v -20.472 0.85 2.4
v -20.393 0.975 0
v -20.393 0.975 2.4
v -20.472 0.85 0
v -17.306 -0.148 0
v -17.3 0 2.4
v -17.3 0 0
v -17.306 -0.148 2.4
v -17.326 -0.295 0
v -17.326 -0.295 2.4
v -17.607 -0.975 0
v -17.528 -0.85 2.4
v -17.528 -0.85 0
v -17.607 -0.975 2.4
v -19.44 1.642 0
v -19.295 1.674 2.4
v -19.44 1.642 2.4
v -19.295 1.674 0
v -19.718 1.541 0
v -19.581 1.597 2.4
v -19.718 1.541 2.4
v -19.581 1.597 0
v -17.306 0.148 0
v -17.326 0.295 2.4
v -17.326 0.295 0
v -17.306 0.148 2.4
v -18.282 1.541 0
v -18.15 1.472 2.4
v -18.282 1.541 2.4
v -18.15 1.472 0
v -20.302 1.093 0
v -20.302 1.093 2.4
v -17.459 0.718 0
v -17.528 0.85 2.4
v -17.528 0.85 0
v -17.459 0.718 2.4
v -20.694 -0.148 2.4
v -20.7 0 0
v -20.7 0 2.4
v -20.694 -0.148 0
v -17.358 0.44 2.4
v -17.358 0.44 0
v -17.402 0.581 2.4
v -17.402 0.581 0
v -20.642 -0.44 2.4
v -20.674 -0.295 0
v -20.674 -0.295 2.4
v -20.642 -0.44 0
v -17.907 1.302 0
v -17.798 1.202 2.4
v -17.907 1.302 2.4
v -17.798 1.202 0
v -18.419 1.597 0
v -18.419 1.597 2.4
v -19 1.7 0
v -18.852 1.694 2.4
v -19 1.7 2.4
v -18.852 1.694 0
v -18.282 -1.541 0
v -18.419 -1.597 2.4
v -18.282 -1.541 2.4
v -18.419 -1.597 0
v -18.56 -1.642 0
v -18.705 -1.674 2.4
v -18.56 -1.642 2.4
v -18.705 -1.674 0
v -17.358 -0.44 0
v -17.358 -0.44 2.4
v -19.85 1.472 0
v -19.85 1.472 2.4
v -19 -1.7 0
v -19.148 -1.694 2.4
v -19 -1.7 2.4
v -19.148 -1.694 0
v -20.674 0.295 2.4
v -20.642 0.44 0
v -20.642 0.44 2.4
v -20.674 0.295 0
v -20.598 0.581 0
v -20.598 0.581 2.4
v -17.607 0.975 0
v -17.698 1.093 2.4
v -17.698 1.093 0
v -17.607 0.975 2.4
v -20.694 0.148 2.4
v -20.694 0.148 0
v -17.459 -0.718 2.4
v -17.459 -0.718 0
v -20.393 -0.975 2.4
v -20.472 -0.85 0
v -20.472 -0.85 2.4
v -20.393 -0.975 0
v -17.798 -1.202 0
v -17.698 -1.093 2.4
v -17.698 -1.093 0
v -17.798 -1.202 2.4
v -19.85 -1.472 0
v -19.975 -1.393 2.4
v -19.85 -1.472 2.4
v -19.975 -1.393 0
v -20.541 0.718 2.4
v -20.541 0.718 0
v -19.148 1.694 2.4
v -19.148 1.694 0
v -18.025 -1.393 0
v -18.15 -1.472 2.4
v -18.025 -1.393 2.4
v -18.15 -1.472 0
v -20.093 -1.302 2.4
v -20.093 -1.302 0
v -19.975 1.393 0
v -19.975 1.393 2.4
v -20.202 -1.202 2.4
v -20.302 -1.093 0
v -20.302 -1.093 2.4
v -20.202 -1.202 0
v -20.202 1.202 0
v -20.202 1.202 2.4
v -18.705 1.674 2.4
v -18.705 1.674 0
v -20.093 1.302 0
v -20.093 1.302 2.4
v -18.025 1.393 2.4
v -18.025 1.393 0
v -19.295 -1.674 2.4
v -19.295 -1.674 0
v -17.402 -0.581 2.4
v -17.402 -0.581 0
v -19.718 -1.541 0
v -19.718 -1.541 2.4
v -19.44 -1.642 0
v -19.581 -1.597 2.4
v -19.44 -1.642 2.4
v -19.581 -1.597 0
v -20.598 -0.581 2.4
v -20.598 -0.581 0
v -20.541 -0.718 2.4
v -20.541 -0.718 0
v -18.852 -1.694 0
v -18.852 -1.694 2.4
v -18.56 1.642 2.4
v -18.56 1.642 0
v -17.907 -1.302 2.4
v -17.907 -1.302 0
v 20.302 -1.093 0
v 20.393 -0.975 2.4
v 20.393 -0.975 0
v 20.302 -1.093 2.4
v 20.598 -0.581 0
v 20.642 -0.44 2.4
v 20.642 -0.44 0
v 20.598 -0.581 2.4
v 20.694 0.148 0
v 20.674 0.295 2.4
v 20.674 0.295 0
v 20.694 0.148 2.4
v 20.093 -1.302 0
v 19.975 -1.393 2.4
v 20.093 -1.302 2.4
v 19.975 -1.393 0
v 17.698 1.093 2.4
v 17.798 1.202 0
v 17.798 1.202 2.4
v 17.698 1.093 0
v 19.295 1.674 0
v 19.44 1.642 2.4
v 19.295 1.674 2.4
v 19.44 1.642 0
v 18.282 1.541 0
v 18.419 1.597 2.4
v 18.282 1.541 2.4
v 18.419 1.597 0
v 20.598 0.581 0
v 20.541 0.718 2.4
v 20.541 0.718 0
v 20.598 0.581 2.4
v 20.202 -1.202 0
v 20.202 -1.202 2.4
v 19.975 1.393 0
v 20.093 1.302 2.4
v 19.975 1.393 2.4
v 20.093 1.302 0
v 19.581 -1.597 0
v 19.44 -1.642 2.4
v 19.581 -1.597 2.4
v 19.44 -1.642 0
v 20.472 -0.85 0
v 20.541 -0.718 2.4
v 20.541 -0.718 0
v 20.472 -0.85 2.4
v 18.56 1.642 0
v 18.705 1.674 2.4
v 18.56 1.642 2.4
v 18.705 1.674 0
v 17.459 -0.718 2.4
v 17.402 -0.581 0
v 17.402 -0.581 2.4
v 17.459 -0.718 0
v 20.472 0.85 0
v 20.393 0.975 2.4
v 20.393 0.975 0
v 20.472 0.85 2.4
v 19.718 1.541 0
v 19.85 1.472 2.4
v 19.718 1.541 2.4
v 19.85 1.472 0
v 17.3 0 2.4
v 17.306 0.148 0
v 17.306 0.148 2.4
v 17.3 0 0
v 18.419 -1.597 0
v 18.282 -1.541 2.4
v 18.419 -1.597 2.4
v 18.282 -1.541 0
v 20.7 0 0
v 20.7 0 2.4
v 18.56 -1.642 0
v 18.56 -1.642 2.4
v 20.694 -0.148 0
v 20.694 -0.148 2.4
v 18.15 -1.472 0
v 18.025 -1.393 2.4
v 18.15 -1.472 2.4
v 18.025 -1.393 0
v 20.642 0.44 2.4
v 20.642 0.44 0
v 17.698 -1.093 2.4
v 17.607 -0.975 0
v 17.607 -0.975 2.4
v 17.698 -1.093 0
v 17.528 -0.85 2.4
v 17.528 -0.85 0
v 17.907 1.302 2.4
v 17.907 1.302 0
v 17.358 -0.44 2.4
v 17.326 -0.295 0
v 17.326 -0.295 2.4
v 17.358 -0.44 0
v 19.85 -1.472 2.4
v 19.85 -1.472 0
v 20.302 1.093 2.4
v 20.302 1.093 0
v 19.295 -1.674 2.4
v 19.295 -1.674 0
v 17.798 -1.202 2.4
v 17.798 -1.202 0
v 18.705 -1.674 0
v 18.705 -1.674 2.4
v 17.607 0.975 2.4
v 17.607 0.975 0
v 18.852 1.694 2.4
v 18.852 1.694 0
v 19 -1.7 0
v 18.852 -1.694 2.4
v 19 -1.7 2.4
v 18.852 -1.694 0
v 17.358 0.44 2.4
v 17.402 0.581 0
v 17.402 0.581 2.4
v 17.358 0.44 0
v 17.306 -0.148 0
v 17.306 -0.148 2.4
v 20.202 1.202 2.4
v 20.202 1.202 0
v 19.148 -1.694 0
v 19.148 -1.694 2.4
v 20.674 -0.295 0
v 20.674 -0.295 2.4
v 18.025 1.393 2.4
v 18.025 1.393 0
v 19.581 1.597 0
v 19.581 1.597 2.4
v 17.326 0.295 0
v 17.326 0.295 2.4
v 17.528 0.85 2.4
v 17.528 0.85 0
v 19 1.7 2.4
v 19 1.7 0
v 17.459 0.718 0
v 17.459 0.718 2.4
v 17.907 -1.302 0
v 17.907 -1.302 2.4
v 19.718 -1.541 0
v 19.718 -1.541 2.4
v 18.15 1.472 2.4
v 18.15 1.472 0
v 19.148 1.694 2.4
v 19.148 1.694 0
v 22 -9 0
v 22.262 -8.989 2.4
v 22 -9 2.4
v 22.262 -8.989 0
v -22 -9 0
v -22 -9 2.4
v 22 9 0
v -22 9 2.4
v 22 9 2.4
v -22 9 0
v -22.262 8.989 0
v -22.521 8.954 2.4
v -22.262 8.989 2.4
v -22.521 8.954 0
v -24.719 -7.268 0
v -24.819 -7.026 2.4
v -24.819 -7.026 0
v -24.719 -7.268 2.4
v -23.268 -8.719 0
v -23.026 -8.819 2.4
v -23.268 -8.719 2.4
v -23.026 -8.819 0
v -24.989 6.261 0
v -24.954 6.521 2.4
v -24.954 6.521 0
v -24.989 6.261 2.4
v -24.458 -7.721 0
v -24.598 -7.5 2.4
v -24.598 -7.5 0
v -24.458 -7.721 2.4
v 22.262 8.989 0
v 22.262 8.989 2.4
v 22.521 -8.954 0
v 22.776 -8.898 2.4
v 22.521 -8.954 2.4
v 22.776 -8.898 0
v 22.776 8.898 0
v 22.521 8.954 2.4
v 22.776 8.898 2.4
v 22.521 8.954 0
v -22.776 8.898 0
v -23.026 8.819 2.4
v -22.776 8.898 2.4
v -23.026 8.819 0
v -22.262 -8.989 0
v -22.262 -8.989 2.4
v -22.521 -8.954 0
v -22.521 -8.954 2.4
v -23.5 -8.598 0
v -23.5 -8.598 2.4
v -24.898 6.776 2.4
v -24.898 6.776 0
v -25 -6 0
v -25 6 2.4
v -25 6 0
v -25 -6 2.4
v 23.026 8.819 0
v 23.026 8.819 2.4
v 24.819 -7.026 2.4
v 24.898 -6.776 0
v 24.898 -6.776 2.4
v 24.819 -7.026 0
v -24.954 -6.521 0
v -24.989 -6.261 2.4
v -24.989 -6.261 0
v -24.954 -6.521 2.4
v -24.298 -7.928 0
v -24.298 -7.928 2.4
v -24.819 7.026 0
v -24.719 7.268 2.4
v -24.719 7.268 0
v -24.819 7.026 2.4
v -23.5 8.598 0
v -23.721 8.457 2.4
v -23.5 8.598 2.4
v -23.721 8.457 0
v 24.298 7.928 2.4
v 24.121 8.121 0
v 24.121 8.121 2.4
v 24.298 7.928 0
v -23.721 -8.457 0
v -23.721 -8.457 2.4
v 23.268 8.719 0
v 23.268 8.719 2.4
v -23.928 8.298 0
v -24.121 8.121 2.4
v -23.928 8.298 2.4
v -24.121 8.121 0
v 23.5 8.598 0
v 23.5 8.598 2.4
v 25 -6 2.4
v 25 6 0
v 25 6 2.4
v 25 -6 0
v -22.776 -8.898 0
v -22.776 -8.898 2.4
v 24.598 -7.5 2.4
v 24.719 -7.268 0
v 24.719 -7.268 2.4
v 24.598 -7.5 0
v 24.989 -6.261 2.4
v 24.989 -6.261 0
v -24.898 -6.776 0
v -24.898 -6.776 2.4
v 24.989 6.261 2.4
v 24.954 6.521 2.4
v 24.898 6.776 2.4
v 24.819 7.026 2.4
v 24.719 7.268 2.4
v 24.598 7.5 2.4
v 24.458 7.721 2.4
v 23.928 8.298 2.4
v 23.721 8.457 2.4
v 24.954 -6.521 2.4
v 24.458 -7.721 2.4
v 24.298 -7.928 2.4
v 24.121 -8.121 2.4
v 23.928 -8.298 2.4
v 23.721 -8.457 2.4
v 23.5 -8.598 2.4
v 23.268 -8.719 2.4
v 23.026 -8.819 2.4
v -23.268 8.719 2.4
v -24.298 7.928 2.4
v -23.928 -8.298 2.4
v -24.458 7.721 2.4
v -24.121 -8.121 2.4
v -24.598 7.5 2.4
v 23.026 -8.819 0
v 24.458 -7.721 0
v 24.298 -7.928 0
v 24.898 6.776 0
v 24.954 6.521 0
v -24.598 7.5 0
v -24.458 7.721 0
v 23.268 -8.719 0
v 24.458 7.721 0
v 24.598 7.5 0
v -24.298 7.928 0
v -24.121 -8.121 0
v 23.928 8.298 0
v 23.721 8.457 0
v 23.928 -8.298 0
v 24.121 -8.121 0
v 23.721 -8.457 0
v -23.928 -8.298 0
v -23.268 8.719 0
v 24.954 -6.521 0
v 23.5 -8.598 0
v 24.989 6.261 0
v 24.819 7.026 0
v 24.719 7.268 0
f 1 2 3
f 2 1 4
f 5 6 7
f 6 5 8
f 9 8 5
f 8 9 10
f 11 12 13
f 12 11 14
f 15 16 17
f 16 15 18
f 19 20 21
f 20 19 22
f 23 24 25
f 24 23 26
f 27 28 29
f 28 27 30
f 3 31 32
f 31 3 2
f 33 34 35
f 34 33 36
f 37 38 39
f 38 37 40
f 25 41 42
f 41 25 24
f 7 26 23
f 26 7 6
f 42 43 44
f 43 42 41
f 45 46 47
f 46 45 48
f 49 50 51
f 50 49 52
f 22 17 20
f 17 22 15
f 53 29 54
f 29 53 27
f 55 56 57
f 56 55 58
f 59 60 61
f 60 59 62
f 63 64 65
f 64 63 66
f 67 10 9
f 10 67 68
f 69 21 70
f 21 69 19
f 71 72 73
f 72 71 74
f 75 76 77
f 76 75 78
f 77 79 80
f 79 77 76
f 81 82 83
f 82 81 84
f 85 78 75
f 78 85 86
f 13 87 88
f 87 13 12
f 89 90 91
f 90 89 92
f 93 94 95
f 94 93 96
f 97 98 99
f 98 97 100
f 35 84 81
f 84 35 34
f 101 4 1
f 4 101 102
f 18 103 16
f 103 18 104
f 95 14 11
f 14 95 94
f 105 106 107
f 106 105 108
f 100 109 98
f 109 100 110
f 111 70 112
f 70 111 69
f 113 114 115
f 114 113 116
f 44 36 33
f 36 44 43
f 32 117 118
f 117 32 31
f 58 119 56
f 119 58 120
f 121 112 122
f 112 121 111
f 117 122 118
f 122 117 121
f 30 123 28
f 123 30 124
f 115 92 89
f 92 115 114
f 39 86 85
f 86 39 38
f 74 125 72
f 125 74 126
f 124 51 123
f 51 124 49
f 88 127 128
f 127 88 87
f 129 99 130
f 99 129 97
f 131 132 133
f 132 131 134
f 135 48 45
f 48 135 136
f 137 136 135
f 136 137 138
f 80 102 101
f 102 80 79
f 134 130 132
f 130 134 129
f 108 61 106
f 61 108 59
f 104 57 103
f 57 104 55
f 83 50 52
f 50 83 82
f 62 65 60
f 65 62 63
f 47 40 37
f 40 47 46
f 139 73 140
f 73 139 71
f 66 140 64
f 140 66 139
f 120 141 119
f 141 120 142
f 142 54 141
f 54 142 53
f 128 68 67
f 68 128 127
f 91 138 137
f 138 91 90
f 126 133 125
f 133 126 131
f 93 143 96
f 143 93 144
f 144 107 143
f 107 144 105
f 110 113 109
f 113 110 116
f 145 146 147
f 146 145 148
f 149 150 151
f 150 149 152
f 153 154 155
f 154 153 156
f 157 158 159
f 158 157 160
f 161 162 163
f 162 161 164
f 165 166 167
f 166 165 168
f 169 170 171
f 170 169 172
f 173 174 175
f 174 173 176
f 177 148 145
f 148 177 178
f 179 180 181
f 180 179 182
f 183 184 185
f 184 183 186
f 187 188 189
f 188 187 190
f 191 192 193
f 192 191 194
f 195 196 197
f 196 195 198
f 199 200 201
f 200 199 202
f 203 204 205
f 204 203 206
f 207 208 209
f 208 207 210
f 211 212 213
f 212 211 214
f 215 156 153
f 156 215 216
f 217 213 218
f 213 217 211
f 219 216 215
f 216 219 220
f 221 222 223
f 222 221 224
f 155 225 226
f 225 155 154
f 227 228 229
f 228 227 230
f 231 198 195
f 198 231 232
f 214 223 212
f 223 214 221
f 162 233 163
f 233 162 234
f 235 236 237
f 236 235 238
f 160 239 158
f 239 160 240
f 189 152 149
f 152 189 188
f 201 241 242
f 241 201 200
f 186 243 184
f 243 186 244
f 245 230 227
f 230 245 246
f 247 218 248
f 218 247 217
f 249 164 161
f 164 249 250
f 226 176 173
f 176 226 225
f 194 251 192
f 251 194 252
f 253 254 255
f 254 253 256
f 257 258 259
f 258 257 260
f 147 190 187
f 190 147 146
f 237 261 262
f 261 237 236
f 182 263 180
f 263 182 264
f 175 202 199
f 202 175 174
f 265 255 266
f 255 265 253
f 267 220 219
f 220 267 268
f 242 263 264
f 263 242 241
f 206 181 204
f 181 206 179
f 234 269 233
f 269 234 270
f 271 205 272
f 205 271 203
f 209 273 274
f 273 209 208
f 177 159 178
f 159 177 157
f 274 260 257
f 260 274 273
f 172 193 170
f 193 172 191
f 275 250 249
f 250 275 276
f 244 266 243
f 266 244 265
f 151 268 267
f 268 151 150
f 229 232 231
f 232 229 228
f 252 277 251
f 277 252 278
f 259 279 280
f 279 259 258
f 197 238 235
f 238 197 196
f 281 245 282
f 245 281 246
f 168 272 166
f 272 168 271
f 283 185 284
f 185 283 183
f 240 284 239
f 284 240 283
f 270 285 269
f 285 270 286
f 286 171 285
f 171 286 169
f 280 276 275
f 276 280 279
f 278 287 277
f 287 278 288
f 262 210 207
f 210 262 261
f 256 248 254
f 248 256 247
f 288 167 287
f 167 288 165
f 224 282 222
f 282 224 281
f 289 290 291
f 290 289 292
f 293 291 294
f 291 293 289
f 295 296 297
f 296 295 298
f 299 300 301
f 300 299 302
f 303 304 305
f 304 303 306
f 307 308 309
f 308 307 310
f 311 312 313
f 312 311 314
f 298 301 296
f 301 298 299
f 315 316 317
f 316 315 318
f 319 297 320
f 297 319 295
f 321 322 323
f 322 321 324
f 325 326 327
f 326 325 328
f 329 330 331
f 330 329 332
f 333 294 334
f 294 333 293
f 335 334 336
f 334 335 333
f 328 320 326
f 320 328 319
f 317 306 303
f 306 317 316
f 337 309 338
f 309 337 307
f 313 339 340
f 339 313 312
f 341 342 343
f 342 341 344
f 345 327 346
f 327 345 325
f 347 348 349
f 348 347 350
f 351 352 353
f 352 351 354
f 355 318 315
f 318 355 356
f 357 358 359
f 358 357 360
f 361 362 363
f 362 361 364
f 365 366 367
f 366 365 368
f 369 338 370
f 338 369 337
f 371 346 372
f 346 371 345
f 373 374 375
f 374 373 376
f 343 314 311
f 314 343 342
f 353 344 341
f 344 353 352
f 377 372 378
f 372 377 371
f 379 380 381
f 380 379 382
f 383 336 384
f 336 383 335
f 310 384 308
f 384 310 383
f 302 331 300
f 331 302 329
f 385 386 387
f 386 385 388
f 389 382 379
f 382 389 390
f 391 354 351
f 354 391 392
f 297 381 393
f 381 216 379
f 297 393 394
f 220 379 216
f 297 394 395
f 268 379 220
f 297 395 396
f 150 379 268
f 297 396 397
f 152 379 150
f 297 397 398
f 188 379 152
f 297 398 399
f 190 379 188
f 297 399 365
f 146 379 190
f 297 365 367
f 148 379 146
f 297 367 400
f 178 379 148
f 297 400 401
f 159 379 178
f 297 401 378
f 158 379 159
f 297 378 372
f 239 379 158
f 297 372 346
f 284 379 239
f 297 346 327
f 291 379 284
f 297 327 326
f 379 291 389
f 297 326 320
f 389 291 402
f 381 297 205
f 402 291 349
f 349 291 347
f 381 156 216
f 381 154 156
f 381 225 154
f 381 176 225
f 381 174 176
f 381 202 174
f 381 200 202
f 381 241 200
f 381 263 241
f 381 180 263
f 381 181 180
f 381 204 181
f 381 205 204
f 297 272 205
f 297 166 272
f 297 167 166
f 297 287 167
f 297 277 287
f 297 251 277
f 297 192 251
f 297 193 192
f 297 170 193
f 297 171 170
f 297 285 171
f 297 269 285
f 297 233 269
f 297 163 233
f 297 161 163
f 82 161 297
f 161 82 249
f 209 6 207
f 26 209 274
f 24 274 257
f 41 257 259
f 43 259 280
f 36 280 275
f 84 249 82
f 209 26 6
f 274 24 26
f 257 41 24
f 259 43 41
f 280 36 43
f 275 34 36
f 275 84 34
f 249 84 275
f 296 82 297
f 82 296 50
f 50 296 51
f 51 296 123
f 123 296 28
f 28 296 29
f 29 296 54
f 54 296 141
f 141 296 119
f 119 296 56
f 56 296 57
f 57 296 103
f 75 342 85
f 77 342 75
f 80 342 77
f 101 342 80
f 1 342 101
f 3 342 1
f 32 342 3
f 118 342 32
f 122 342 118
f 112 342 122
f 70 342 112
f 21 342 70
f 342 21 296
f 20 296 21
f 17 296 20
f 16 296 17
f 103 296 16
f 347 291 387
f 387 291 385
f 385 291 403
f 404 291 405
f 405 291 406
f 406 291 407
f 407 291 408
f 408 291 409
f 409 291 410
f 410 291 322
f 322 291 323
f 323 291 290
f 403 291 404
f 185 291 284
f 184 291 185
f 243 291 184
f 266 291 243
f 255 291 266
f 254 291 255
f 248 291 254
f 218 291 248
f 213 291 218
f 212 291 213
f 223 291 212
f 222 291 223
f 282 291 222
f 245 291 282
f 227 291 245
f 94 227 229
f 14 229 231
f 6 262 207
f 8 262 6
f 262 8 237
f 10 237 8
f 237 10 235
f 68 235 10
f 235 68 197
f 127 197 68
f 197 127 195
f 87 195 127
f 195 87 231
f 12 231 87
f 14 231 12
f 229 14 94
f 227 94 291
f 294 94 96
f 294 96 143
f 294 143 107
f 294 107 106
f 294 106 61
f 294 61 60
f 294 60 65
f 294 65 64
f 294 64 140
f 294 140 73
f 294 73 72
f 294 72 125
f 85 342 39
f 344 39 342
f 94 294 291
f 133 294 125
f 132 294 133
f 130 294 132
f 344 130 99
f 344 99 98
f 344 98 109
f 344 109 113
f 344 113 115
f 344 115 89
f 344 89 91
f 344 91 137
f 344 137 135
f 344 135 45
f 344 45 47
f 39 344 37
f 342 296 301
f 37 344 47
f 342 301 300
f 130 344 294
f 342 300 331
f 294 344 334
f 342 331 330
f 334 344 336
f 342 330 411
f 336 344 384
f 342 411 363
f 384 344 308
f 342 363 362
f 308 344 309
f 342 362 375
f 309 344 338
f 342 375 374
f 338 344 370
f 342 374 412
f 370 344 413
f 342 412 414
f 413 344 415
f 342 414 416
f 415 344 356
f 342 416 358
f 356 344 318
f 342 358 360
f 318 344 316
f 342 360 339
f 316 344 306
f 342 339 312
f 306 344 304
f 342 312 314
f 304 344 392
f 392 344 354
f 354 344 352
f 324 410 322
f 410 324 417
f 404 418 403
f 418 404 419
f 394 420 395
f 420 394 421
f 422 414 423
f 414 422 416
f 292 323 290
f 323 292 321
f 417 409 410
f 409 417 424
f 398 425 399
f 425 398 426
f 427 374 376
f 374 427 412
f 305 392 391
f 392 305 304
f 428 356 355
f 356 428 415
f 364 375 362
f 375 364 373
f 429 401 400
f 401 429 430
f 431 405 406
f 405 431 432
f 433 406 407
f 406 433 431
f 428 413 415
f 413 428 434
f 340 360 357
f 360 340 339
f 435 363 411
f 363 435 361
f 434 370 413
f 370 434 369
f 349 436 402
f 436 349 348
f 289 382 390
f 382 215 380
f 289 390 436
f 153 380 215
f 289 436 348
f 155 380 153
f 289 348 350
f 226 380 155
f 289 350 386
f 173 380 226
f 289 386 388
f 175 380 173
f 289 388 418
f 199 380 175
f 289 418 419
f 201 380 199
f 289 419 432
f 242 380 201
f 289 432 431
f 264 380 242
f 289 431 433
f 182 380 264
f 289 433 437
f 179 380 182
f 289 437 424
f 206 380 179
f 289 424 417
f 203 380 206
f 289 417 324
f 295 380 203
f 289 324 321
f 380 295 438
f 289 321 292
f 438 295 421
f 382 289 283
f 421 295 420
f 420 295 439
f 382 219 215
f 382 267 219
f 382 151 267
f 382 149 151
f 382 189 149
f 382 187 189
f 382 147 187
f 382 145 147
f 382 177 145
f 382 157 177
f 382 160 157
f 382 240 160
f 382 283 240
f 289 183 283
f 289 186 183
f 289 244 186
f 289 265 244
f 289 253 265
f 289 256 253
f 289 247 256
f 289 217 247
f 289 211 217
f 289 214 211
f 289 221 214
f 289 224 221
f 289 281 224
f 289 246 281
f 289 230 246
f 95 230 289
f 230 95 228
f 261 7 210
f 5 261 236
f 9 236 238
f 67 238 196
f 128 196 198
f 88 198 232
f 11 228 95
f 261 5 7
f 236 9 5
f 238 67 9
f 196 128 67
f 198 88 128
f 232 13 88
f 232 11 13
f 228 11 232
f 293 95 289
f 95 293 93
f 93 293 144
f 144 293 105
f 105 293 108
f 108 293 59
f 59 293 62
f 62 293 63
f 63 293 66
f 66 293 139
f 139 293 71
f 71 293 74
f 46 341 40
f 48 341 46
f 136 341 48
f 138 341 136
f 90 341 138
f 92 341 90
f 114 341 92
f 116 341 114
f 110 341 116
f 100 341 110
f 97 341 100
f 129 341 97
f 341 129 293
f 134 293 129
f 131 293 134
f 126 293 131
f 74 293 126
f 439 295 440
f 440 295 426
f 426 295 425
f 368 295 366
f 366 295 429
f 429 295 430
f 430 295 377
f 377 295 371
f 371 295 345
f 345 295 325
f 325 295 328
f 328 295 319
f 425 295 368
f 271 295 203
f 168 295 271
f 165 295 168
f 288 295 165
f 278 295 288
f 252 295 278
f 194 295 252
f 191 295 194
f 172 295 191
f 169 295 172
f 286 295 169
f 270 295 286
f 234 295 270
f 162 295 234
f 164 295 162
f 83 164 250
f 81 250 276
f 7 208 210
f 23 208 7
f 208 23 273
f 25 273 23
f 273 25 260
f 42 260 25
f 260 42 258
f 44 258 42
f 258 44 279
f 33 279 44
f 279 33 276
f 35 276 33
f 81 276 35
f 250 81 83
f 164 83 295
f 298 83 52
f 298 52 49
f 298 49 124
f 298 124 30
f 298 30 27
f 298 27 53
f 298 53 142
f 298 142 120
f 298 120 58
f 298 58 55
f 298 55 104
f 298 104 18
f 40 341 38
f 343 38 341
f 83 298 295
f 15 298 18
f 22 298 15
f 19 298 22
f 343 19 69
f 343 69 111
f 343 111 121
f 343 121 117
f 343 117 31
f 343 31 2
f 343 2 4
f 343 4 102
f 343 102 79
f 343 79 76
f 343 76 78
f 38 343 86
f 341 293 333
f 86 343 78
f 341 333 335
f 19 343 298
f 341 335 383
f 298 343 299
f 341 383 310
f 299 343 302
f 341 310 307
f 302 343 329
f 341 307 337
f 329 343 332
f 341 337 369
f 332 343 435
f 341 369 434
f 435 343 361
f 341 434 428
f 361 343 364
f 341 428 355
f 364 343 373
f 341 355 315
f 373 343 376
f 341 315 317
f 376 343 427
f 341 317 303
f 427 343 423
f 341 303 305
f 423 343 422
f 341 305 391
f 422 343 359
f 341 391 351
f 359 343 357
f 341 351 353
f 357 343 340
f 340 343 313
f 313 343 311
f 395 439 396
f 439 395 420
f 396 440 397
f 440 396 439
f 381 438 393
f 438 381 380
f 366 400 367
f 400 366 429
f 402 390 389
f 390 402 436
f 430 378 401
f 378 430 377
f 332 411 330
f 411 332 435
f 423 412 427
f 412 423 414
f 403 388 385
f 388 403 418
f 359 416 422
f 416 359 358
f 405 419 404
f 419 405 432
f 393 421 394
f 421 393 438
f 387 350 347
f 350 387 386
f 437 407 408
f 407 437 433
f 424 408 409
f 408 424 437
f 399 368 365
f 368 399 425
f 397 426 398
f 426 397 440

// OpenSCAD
// file: woli_config.scad
// ============================================================
// WOLI V1.1 AUDITED FINAL — MASTER PARAMETERS
// Units: mm
// ============================================================

$fn = 72;

// ---------- GLOBAL ----------
fit_clearance = 0.40;
wall = 3.0;
floor_t = 5.0;
cover_t = 2.8;
shell_r = 10.0;

m3_clear = 3.4;
m3_pilot_d = 2.8;
m3_pilot_depth = 4.2;

tie_slot_w = 3.8;
tie_slot_l = 18;

// ---------- BODY ----------
body_w = 170;
body_l = 90;
chassis_h = 31;
top_h = 34;

top_upper_w = 162;
top_upper_l = 80;
top_upper_r = 9;

// ---------- N20 DRIVE ----------
wheel_d = 43;
wheel_w = 17.5;

n20_x = 12;
n20_y = 33;
n20_z = 10;

n20_bracket_x = 25;
n20_bracket_y = 8.5;
n20_bracket_z = 11.5;
n20_bracket_hole_cc = 17;      // approx; slots absorb error

wheel_axis_ground_z = wheel_d/2; // reference only; actual chassis ground plane requires hardware check
wheel_opening_l = 25;            // side wheel cutout depth (Y), mm
motor_y = -body_l/2 + body_l/3;  // wheel center: 1/3 body depth in from front (-Y)
motor_slot_len = 8;
motor_bracket_zone_x = body_w/2 - 18;

// ---------- BALL CASTER ----------
caster_w = 22;
caster_l = 17;
caster_h = 15;
caster_ball_d_visual_ref = 11.5; // photo-only reference; not used for fit
caster_dock_y = body_l/2 - 21;

caster_body_clear = 0.7;
caster_retainer_t = 3.0;
caster_retainer_screw_cc = 27;

caster_mount_x = 15;
caster_mount_y = 12;
caster_floor_open = 18.5;

// ---------- MAIN PCB ----------
pcb_w = 50;
pcb_l = 70;
pcb_stack_h = 15;

pcb_tray_w = 56;
pcb_tray_l = 76;
pcb_mount_cc_x = 44;
pcb_mount_cc_y = 64;

// ---------- MG90S ----------
servo_a = 32.4;
servo_b = 32.5;
servo_c = 12;
servo_fit = 0.7;

// ---------- LIMIT SWITCH ----------
limit_w = 21;
limit_l = 23;
limit_h = 6;

// ---------- VL53L0X ----------
tof_w = 10.7;
tof_l = 25;
tof_h = 11.5;
tof_rail_clear = 0.7;

tof_bezel_w = 34;
tof_bezel_h = 19;

// ---------- PHONE HOLDER / NECK ----------
phone_ball_d = 18.0;            // physical socket fit still required
neck_h = 30;
neck_base_w = 54;
neck_base_l = 42;
neck_base_h = 5;
neck_hole_x = 38;
neck_hole_y = 26;

neck_recess_w = 62;
neck_recess_l = 50;
neck_recess_d = 1.2;

neck_pilot_d = 2.8;
neck_pilot_depth = 7.0;

// reference phone clearance envelope only
phone_ref_w = 165;
phone_ref_h = 82;
phone_ref_t = 12;

// ---------- KLIFE PD-Q2 BATTERY ----------
battery_w = 68;
battery_l = 143;
battery_h = 11;
battery_mass_g = 205;

battery_fit_clear = 0.8;
battery_tray_w = 84;
battery_tray_l = 146;
battery_tray_t = 2.4;
battery_rail_t = 2.5;
battery_rail_h = 5.5;
battery_center_y = -18;

battery_tray_mount_x = 39;
battery_tray_mount_y = 55;

// ---------- UPPER ELECTRONICS DECK ----------
bridge_w = 122;
bridge_l = 94;
bridge_t = 3.0;
bridge_leg_h = 20;
bridge_leg_x = 56;
bridge_leg_y = 36;

module_boss_h = 4.5;
module_boss_d = 8.0;
module_pilot_d = 2.8;

pcb_deck_cx = -25;
pcb_deck_cy = 0;

tb_deck_cx = 34;
tb_deck_cy = 17;

usbc_deck_cx = 36;
usbc_deck_cy = -24;

// ---------- TB6612FNG HW-166 ----------
tb6612_w = 26;
tb6612_l = 26;
tb6612_clear = 0.6;

// total installed height is intentionally not hard-coded

// ---------- USB-C BREAKOUT ----------
usbc_board_w = 12;
usbc_board_l = 15;
usbc_connector_h = 4.2;
usbc_clear = 0.6;

// ---------- TOP COVER INTERFACE ----------
cover_skirt_depth = 4.0;
cover_skirt_clear = 0.8;
cover_skirt_t = 2.5;

cover_side_screw_y = 55 * body_l / 190;
cover_side_screw_z = -2.5;

rear_service_w = 42;
rear_service_h = 14;
rear_hatch_screw_x = 19;
rear_hatch_center_z = 10;

// ---------- CABLE MANAGEMENT ----------
cable_bridge_w = 24;
cable_bridge_l = 14;
cable_bridge_h = 8;
cable_bridge_channel = 8;

// ---------- SERVO LOCK FRAMEWORK ----------
lock_angle_deg = 90;
unlock_angle_deg = 10;

lock_plate_d = 28;
lock_arm_w = 10;
lock_arm_t = 4.0;
lock_reach = 22;
lock_tip_d = 10;

horn_center_clear_d = 7.0;
horn_slot_d = 2.4;              // physical stock-horn check required
horn_slot_len = 8.0;
horn_slot_radius = 8.0;

lock_pad_t = 2.0;
lock_pad_d = 11.0;
// file: woli_lib.scad
include <woli_config.scad>;

module rr2d(w,l,r){
    offset(r=r) square([w-2*r,l-2*r], center=true);
}

module rplate(w,l,h,r){
    linear_extrude(height=h) rr2d(w,l,r);
}

module rshell(w,l,h,r,t,bottom){
    difference(){
        rplate(w,l,h,r);
        translate([0,0,bottom])
            rplate(w-2*t,l-2*t,h,r-t);
    }
}

module slot2d(len,d){
    hull(){
        translate([-len/2,0]) circle(d=d);
        translate([ len/2,0]) circle(d=d);
    }
}

module slot3d(len,d,h){
    linear_extrude(height=h) slot2d(len,d);
}

module tie_slot(h=5){
    rplate(tie_slot_w,tie_slot_l,h,1.2);
}

module body_screw_pattern(h=20){
    for(x=[-screw_x,screw_x])
        for(y=[-screw_y,screw_y])
            translate([x,y,-1])
                cylinder(h=h,d=m3_clear);
}

module body_bosses(h=20){
    for(x=[-screw_x,screw_x])
        for(y=[-screw_y,screw_y])
            translate([x,y,0])
                cylinder(h=h,d=m3_boss_d);
}


// Closed-top shell for removable upper cover.
// Leaves the underside open and preserves a roof thickness.
module top_shell(w,l,h,r,t){
    difference(){
        rplate(w,l,h,r);
        translate([0,0,-0.1])
            rplate(w-2*t,l-2*t,h-t+0.1,r-t);
    }
}


// Tapered rounded solid built from two rounded plates.
// Useful for product-like enclosure shoulders.
module tapered_rounded_solid(w0,l0,w1,l1,h,r0,r1){
    hull(){
        rplate(w0,l0,0.8,r0);
        translate([0,0,h-0.8])
            rplate(w1,l1,0.8,r1);
    }
}

// Open-bottom tapered cover with closed roof.
module tapered_top_shell(w0,l0,w1,l1,h,r0,r1,t){
    difference(){
        tapered_rounded_solid(w0,l0,w1,l1,h,r0,r1);
        translate([0,0,-0.1])
            tapered_rounded_solid(
                w0-2*t,l0-2*t,
                w1-2*t,l1-2*t,
                h-t+0.1,
                max(r0-t,1),max(r1-t,1)
            );
    }
}
// main file
include <woli_lib.scad>;

hatch_w=50;
hatch_h=18;
hatch_t=2.4;

difference(){
    rplate(hatch_w,hatch_h,hatch_t,3);

    for(x=[-rear_hatch_screw_x,rear_hatch_screw_x])
        translate([x,0,-0.1])
            cylinder(h=hatch_t+0.3,d=m3_clear);
}
